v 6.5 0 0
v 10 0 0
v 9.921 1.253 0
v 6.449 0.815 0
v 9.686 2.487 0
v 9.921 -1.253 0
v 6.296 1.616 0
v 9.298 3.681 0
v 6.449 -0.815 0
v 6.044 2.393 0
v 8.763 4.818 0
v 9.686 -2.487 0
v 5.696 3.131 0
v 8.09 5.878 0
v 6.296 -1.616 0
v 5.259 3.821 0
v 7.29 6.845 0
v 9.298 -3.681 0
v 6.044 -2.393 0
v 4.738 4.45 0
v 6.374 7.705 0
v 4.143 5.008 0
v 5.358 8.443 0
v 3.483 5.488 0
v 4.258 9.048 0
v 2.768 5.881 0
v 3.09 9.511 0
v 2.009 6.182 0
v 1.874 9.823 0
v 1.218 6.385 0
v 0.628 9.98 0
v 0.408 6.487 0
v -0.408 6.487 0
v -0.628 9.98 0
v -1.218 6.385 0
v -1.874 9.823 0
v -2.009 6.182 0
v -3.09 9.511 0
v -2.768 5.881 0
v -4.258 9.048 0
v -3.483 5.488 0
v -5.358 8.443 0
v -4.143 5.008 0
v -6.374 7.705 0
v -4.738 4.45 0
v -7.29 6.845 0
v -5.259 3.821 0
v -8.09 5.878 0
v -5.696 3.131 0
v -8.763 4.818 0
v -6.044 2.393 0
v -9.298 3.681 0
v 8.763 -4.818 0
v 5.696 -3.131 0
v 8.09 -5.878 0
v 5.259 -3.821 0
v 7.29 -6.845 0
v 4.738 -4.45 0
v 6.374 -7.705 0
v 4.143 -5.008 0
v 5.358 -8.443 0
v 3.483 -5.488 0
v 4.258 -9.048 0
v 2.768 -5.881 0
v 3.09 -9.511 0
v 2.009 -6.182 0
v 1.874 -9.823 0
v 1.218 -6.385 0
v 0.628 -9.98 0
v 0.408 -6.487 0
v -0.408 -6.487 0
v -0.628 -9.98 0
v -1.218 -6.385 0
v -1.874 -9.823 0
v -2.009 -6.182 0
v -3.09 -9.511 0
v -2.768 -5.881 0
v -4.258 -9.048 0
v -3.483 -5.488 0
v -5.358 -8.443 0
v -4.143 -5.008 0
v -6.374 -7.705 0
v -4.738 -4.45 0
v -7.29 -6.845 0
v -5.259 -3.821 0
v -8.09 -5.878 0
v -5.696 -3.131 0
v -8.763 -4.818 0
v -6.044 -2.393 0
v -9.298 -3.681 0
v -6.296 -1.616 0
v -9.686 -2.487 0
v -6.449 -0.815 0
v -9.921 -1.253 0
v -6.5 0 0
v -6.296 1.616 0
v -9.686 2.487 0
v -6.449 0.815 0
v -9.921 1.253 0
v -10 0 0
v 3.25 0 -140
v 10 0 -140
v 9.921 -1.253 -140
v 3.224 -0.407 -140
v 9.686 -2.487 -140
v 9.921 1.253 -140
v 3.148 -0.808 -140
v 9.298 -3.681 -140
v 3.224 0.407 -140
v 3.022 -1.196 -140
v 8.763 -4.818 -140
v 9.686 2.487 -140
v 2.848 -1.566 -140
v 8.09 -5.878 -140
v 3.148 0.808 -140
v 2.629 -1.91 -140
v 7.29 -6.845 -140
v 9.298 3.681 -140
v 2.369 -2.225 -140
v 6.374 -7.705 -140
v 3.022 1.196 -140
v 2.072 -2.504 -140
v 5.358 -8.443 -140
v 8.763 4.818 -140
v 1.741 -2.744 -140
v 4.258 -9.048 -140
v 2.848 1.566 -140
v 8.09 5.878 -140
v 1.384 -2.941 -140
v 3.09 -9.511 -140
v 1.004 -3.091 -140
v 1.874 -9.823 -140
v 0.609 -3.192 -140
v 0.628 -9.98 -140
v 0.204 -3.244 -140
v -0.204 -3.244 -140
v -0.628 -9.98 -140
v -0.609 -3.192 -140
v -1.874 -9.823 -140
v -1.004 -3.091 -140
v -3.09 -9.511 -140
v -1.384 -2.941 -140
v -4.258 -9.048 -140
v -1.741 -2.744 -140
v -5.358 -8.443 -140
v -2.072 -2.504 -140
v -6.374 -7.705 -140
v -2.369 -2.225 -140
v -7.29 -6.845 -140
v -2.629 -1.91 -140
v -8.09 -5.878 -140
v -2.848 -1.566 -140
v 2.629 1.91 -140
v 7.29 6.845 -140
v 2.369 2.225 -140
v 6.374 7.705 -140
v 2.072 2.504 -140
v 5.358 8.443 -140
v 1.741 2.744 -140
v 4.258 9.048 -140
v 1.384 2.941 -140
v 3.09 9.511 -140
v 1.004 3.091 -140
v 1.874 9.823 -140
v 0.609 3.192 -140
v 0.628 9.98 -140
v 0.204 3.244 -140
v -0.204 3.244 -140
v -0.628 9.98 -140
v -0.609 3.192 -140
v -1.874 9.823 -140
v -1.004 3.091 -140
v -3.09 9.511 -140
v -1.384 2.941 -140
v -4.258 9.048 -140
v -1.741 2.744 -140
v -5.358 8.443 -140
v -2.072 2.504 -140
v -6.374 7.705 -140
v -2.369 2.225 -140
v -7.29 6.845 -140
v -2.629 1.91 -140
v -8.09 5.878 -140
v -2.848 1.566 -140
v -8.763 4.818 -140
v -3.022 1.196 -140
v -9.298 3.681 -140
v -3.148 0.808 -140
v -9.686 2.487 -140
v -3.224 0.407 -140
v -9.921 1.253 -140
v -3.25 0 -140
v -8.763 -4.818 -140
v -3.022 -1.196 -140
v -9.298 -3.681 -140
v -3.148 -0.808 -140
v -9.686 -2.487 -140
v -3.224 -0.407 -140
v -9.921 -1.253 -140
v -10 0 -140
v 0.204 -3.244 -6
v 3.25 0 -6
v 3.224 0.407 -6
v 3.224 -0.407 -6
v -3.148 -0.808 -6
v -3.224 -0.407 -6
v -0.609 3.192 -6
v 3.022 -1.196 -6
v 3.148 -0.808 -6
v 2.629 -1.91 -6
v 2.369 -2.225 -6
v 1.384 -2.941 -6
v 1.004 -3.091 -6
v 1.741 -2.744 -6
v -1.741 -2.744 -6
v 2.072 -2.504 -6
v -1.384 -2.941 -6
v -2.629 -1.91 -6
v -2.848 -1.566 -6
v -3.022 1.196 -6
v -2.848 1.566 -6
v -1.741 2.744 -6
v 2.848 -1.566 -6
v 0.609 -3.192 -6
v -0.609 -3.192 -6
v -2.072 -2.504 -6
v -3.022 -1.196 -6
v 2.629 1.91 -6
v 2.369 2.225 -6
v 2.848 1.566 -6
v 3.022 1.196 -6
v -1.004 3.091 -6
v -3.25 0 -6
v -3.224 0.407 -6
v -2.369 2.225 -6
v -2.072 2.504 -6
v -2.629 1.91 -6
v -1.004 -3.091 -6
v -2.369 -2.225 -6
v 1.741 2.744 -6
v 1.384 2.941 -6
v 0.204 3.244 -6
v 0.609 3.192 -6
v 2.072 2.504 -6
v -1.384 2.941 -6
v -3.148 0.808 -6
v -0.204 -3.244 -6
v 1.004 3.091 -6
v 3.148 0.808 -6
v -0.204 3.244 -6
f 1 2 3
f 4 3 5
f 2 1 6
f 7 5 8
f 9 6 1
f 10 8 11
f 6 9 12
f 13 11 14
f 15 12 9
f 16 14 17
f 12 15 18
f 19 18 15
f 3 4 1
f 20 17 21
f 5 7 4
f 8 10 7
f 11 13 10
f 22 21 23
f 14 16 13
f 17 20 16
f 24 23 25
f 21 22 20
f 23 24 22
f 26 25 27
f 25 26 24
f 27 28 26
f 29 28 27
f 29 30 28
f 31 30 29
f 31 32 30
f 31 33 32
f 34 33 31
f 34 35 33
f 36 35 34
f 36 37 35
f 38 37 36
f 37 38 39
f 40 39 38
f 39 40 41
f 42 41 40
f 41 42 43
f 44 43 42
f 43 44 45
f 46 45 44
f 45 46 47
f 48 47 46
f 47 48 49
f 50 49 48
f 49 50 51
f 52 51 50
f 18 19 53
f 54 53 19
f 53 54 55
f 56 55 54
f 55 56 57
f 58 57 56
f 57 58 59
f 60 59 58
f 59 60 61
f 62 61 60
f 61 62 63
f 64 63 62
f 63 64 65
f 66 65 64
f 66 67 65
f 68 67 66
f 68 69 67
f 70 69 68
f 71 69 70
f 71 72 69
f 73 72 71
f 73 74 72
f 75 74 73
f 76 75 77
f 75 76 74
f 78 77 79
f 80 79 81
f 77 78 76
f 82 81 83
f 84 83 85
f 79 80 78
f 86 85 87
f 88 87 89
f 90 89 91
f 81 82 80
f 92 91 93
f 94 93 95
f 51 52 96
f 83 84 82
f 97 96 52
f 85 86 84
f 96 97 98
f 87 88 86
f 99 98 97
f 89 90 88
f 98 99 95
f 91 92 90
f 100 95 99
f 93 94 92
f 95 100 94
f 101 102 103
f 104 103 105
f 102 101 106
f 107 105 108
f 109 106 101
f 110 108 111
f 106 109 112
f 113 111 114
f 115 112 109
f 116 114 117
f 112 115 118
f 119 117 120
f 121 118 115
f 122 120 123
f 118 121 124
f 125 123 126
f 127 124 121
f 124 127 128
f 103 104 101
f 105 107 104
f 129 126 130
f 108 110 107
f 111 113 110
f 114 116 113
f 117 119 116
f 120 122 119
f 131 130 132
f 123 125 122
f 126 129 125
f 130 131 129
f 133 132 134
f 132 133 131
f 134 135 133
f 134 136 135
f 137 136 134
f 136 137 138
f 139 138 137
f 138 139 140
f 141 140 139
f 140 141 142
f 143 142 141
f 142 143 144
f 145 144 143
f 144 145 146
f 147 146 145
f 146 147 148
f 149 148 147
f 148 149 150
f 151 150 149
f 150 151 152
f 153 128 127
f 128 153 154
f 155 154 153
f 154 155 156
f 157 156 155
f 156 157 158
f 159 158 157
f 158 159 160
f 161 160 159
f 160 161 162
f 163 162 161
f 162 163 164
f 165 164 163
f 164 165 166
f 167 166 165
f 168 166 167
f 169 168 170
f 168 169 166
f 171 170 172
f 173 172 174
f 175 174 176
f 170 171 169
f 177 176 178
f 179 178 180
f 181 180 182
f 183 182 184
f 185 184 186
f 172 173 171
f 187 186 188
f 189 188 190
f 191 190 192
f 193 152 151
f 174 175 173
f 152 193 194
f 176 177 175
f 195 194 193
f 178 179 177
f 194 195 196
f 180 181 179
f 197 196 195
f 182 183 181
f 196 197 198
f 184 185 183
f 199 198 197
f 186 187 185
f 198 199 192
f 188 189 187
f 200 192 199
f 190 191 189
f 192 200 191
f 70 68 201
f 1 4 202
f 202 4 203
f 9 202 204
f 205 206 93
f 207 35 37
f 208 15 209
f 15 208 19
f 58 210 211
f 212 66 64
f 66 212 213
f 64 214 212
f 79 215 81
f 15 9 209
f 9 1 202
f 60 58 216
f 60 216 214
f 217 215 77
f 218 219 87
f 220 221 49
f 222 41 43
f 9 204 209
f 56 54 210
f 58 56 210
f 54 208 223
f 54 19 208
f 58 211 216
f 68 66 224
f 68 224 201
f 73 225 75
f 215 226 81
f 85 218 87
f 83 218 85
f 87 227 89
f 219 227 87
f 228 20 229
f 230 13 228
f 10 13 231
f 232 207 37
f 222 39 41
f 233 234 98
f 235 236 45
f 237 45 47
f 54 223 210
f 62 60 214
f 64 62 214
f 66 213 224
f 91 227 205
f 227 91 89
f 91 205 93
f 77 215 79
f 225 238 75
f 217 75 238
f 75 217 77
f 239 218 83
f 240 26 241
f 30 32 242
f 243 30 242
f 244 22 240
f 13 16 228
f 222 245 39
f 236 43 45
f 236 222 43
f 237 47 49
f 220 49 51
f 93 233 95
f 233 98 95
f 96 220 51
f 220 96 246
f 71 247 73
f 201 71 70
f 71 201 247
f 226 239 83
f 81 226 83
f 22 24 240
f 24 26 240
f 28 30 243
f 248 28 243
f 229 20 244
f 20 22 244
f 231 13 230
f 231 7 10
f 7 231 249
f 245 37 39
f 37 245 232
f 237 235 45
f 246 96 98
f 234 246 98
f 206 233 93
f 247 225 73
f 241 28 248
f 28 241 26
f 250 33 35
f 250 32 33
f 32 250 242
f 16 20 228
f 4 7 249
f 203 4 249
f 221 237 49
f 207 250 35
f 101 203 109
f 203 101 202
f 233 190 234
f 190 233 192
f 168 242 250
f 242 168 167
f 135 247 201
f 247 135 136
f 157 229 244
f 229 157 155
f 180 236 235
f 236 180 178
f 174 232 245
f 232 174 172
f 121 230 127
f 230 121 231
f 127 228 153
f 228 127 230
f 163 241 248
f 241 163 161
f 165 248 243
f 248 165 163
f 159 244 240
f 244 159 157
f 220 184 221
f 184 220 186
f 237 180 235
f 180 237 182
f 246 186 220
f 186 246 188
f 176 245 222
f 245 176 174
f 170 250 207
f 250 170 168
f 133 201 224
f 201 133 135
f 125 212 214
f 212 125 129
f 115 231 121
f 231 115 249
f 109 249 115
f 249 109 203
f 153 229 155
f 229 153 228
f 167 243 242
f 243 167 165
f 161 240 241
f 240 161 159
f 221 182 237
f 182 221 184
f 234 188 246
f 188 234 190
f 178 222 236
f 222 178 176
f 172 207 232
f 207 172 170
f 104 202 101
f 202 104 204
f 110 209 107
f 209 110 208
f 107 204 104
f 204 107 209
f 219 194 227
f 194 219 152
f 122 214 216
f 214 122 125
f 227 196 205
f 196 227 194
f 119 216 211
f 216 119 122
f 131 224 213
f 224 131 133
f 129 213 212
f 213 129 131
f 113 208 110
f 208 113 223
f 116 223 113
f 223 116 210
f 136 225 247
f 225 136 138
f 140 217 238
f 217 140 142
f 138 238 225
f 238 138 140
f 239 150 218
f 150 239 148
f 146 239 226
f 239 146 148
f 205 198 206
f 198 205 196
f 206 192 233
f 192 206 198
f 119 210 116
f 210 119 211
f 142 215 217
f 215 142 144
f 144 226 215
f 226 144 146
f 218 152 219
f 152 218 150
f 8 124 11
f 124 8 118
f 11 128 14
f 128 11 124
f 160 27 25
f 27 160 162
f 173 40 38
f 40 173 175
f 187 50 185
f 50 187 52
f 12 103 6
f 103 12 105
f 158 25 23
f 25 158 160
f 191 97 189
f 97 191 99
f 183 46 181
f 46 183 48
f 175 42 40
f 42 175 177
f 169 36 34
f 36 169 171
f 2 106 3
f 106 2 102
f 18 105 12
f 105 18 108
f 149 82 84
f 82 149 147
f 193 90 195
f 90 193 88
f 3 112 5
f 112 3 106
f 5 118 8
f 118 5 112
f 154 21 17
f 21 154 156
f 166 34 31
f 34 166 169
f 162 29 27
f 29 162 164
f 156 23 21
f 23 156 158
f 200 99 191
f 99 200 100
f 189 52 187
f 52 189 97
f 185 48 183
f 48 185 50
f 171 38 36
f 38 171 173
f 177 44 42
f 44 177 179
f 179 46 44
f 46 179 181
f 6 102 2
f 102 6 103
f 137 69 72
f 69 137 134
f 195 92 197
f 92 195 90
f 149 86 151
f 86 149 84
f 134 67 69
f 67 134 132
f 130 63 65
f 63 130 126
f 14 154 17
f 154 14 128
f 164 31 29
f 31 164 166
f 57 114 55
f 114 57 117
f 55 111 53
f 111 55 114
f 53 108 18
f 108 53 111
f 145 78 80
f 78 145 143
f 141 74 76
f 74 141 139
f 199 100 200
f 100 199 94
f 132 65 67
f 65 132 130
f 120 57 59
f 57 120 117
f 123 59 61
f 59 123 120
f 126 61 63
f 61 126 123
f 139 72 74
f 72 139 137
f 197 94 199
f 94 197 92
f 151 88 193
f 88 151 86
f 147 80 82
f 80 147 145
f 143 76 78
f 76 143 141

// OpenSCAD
$fn = 50;


difference() {
	union() {
		translate(v = [0, 0, -140.0000000000]) {
			cylinder(h = 140, r = 10.0000000000);
		}
		cylinder(h = 0, r = 13.0000000000);
	}
	union() {
		translate(v = [0, 0, 0]) {
			rotate(a = [0, 0, 0]) {
				difference() {
					union() {
						#translate(v = [0, 0, -140.0000000000]) {
							cylinder(h = 140, r = 2.2500000000);
						}
						#translate(v = [0, 0, -6]) {
							cylinder(h = 6, r1 = 3.2500000000, r2 = 6.5000000000);
						}
						#translate(v = [0, 0, -140.0000000000]) {
							cylinder(h = 140, r = 3.2500000000);
						}
						#translate(v = [0, 0, -140.0000000000]) {
							cylinder(h = 140, r = 2.2500000000);
						}
					}
					union();
				}
			}
		}
	}
}
